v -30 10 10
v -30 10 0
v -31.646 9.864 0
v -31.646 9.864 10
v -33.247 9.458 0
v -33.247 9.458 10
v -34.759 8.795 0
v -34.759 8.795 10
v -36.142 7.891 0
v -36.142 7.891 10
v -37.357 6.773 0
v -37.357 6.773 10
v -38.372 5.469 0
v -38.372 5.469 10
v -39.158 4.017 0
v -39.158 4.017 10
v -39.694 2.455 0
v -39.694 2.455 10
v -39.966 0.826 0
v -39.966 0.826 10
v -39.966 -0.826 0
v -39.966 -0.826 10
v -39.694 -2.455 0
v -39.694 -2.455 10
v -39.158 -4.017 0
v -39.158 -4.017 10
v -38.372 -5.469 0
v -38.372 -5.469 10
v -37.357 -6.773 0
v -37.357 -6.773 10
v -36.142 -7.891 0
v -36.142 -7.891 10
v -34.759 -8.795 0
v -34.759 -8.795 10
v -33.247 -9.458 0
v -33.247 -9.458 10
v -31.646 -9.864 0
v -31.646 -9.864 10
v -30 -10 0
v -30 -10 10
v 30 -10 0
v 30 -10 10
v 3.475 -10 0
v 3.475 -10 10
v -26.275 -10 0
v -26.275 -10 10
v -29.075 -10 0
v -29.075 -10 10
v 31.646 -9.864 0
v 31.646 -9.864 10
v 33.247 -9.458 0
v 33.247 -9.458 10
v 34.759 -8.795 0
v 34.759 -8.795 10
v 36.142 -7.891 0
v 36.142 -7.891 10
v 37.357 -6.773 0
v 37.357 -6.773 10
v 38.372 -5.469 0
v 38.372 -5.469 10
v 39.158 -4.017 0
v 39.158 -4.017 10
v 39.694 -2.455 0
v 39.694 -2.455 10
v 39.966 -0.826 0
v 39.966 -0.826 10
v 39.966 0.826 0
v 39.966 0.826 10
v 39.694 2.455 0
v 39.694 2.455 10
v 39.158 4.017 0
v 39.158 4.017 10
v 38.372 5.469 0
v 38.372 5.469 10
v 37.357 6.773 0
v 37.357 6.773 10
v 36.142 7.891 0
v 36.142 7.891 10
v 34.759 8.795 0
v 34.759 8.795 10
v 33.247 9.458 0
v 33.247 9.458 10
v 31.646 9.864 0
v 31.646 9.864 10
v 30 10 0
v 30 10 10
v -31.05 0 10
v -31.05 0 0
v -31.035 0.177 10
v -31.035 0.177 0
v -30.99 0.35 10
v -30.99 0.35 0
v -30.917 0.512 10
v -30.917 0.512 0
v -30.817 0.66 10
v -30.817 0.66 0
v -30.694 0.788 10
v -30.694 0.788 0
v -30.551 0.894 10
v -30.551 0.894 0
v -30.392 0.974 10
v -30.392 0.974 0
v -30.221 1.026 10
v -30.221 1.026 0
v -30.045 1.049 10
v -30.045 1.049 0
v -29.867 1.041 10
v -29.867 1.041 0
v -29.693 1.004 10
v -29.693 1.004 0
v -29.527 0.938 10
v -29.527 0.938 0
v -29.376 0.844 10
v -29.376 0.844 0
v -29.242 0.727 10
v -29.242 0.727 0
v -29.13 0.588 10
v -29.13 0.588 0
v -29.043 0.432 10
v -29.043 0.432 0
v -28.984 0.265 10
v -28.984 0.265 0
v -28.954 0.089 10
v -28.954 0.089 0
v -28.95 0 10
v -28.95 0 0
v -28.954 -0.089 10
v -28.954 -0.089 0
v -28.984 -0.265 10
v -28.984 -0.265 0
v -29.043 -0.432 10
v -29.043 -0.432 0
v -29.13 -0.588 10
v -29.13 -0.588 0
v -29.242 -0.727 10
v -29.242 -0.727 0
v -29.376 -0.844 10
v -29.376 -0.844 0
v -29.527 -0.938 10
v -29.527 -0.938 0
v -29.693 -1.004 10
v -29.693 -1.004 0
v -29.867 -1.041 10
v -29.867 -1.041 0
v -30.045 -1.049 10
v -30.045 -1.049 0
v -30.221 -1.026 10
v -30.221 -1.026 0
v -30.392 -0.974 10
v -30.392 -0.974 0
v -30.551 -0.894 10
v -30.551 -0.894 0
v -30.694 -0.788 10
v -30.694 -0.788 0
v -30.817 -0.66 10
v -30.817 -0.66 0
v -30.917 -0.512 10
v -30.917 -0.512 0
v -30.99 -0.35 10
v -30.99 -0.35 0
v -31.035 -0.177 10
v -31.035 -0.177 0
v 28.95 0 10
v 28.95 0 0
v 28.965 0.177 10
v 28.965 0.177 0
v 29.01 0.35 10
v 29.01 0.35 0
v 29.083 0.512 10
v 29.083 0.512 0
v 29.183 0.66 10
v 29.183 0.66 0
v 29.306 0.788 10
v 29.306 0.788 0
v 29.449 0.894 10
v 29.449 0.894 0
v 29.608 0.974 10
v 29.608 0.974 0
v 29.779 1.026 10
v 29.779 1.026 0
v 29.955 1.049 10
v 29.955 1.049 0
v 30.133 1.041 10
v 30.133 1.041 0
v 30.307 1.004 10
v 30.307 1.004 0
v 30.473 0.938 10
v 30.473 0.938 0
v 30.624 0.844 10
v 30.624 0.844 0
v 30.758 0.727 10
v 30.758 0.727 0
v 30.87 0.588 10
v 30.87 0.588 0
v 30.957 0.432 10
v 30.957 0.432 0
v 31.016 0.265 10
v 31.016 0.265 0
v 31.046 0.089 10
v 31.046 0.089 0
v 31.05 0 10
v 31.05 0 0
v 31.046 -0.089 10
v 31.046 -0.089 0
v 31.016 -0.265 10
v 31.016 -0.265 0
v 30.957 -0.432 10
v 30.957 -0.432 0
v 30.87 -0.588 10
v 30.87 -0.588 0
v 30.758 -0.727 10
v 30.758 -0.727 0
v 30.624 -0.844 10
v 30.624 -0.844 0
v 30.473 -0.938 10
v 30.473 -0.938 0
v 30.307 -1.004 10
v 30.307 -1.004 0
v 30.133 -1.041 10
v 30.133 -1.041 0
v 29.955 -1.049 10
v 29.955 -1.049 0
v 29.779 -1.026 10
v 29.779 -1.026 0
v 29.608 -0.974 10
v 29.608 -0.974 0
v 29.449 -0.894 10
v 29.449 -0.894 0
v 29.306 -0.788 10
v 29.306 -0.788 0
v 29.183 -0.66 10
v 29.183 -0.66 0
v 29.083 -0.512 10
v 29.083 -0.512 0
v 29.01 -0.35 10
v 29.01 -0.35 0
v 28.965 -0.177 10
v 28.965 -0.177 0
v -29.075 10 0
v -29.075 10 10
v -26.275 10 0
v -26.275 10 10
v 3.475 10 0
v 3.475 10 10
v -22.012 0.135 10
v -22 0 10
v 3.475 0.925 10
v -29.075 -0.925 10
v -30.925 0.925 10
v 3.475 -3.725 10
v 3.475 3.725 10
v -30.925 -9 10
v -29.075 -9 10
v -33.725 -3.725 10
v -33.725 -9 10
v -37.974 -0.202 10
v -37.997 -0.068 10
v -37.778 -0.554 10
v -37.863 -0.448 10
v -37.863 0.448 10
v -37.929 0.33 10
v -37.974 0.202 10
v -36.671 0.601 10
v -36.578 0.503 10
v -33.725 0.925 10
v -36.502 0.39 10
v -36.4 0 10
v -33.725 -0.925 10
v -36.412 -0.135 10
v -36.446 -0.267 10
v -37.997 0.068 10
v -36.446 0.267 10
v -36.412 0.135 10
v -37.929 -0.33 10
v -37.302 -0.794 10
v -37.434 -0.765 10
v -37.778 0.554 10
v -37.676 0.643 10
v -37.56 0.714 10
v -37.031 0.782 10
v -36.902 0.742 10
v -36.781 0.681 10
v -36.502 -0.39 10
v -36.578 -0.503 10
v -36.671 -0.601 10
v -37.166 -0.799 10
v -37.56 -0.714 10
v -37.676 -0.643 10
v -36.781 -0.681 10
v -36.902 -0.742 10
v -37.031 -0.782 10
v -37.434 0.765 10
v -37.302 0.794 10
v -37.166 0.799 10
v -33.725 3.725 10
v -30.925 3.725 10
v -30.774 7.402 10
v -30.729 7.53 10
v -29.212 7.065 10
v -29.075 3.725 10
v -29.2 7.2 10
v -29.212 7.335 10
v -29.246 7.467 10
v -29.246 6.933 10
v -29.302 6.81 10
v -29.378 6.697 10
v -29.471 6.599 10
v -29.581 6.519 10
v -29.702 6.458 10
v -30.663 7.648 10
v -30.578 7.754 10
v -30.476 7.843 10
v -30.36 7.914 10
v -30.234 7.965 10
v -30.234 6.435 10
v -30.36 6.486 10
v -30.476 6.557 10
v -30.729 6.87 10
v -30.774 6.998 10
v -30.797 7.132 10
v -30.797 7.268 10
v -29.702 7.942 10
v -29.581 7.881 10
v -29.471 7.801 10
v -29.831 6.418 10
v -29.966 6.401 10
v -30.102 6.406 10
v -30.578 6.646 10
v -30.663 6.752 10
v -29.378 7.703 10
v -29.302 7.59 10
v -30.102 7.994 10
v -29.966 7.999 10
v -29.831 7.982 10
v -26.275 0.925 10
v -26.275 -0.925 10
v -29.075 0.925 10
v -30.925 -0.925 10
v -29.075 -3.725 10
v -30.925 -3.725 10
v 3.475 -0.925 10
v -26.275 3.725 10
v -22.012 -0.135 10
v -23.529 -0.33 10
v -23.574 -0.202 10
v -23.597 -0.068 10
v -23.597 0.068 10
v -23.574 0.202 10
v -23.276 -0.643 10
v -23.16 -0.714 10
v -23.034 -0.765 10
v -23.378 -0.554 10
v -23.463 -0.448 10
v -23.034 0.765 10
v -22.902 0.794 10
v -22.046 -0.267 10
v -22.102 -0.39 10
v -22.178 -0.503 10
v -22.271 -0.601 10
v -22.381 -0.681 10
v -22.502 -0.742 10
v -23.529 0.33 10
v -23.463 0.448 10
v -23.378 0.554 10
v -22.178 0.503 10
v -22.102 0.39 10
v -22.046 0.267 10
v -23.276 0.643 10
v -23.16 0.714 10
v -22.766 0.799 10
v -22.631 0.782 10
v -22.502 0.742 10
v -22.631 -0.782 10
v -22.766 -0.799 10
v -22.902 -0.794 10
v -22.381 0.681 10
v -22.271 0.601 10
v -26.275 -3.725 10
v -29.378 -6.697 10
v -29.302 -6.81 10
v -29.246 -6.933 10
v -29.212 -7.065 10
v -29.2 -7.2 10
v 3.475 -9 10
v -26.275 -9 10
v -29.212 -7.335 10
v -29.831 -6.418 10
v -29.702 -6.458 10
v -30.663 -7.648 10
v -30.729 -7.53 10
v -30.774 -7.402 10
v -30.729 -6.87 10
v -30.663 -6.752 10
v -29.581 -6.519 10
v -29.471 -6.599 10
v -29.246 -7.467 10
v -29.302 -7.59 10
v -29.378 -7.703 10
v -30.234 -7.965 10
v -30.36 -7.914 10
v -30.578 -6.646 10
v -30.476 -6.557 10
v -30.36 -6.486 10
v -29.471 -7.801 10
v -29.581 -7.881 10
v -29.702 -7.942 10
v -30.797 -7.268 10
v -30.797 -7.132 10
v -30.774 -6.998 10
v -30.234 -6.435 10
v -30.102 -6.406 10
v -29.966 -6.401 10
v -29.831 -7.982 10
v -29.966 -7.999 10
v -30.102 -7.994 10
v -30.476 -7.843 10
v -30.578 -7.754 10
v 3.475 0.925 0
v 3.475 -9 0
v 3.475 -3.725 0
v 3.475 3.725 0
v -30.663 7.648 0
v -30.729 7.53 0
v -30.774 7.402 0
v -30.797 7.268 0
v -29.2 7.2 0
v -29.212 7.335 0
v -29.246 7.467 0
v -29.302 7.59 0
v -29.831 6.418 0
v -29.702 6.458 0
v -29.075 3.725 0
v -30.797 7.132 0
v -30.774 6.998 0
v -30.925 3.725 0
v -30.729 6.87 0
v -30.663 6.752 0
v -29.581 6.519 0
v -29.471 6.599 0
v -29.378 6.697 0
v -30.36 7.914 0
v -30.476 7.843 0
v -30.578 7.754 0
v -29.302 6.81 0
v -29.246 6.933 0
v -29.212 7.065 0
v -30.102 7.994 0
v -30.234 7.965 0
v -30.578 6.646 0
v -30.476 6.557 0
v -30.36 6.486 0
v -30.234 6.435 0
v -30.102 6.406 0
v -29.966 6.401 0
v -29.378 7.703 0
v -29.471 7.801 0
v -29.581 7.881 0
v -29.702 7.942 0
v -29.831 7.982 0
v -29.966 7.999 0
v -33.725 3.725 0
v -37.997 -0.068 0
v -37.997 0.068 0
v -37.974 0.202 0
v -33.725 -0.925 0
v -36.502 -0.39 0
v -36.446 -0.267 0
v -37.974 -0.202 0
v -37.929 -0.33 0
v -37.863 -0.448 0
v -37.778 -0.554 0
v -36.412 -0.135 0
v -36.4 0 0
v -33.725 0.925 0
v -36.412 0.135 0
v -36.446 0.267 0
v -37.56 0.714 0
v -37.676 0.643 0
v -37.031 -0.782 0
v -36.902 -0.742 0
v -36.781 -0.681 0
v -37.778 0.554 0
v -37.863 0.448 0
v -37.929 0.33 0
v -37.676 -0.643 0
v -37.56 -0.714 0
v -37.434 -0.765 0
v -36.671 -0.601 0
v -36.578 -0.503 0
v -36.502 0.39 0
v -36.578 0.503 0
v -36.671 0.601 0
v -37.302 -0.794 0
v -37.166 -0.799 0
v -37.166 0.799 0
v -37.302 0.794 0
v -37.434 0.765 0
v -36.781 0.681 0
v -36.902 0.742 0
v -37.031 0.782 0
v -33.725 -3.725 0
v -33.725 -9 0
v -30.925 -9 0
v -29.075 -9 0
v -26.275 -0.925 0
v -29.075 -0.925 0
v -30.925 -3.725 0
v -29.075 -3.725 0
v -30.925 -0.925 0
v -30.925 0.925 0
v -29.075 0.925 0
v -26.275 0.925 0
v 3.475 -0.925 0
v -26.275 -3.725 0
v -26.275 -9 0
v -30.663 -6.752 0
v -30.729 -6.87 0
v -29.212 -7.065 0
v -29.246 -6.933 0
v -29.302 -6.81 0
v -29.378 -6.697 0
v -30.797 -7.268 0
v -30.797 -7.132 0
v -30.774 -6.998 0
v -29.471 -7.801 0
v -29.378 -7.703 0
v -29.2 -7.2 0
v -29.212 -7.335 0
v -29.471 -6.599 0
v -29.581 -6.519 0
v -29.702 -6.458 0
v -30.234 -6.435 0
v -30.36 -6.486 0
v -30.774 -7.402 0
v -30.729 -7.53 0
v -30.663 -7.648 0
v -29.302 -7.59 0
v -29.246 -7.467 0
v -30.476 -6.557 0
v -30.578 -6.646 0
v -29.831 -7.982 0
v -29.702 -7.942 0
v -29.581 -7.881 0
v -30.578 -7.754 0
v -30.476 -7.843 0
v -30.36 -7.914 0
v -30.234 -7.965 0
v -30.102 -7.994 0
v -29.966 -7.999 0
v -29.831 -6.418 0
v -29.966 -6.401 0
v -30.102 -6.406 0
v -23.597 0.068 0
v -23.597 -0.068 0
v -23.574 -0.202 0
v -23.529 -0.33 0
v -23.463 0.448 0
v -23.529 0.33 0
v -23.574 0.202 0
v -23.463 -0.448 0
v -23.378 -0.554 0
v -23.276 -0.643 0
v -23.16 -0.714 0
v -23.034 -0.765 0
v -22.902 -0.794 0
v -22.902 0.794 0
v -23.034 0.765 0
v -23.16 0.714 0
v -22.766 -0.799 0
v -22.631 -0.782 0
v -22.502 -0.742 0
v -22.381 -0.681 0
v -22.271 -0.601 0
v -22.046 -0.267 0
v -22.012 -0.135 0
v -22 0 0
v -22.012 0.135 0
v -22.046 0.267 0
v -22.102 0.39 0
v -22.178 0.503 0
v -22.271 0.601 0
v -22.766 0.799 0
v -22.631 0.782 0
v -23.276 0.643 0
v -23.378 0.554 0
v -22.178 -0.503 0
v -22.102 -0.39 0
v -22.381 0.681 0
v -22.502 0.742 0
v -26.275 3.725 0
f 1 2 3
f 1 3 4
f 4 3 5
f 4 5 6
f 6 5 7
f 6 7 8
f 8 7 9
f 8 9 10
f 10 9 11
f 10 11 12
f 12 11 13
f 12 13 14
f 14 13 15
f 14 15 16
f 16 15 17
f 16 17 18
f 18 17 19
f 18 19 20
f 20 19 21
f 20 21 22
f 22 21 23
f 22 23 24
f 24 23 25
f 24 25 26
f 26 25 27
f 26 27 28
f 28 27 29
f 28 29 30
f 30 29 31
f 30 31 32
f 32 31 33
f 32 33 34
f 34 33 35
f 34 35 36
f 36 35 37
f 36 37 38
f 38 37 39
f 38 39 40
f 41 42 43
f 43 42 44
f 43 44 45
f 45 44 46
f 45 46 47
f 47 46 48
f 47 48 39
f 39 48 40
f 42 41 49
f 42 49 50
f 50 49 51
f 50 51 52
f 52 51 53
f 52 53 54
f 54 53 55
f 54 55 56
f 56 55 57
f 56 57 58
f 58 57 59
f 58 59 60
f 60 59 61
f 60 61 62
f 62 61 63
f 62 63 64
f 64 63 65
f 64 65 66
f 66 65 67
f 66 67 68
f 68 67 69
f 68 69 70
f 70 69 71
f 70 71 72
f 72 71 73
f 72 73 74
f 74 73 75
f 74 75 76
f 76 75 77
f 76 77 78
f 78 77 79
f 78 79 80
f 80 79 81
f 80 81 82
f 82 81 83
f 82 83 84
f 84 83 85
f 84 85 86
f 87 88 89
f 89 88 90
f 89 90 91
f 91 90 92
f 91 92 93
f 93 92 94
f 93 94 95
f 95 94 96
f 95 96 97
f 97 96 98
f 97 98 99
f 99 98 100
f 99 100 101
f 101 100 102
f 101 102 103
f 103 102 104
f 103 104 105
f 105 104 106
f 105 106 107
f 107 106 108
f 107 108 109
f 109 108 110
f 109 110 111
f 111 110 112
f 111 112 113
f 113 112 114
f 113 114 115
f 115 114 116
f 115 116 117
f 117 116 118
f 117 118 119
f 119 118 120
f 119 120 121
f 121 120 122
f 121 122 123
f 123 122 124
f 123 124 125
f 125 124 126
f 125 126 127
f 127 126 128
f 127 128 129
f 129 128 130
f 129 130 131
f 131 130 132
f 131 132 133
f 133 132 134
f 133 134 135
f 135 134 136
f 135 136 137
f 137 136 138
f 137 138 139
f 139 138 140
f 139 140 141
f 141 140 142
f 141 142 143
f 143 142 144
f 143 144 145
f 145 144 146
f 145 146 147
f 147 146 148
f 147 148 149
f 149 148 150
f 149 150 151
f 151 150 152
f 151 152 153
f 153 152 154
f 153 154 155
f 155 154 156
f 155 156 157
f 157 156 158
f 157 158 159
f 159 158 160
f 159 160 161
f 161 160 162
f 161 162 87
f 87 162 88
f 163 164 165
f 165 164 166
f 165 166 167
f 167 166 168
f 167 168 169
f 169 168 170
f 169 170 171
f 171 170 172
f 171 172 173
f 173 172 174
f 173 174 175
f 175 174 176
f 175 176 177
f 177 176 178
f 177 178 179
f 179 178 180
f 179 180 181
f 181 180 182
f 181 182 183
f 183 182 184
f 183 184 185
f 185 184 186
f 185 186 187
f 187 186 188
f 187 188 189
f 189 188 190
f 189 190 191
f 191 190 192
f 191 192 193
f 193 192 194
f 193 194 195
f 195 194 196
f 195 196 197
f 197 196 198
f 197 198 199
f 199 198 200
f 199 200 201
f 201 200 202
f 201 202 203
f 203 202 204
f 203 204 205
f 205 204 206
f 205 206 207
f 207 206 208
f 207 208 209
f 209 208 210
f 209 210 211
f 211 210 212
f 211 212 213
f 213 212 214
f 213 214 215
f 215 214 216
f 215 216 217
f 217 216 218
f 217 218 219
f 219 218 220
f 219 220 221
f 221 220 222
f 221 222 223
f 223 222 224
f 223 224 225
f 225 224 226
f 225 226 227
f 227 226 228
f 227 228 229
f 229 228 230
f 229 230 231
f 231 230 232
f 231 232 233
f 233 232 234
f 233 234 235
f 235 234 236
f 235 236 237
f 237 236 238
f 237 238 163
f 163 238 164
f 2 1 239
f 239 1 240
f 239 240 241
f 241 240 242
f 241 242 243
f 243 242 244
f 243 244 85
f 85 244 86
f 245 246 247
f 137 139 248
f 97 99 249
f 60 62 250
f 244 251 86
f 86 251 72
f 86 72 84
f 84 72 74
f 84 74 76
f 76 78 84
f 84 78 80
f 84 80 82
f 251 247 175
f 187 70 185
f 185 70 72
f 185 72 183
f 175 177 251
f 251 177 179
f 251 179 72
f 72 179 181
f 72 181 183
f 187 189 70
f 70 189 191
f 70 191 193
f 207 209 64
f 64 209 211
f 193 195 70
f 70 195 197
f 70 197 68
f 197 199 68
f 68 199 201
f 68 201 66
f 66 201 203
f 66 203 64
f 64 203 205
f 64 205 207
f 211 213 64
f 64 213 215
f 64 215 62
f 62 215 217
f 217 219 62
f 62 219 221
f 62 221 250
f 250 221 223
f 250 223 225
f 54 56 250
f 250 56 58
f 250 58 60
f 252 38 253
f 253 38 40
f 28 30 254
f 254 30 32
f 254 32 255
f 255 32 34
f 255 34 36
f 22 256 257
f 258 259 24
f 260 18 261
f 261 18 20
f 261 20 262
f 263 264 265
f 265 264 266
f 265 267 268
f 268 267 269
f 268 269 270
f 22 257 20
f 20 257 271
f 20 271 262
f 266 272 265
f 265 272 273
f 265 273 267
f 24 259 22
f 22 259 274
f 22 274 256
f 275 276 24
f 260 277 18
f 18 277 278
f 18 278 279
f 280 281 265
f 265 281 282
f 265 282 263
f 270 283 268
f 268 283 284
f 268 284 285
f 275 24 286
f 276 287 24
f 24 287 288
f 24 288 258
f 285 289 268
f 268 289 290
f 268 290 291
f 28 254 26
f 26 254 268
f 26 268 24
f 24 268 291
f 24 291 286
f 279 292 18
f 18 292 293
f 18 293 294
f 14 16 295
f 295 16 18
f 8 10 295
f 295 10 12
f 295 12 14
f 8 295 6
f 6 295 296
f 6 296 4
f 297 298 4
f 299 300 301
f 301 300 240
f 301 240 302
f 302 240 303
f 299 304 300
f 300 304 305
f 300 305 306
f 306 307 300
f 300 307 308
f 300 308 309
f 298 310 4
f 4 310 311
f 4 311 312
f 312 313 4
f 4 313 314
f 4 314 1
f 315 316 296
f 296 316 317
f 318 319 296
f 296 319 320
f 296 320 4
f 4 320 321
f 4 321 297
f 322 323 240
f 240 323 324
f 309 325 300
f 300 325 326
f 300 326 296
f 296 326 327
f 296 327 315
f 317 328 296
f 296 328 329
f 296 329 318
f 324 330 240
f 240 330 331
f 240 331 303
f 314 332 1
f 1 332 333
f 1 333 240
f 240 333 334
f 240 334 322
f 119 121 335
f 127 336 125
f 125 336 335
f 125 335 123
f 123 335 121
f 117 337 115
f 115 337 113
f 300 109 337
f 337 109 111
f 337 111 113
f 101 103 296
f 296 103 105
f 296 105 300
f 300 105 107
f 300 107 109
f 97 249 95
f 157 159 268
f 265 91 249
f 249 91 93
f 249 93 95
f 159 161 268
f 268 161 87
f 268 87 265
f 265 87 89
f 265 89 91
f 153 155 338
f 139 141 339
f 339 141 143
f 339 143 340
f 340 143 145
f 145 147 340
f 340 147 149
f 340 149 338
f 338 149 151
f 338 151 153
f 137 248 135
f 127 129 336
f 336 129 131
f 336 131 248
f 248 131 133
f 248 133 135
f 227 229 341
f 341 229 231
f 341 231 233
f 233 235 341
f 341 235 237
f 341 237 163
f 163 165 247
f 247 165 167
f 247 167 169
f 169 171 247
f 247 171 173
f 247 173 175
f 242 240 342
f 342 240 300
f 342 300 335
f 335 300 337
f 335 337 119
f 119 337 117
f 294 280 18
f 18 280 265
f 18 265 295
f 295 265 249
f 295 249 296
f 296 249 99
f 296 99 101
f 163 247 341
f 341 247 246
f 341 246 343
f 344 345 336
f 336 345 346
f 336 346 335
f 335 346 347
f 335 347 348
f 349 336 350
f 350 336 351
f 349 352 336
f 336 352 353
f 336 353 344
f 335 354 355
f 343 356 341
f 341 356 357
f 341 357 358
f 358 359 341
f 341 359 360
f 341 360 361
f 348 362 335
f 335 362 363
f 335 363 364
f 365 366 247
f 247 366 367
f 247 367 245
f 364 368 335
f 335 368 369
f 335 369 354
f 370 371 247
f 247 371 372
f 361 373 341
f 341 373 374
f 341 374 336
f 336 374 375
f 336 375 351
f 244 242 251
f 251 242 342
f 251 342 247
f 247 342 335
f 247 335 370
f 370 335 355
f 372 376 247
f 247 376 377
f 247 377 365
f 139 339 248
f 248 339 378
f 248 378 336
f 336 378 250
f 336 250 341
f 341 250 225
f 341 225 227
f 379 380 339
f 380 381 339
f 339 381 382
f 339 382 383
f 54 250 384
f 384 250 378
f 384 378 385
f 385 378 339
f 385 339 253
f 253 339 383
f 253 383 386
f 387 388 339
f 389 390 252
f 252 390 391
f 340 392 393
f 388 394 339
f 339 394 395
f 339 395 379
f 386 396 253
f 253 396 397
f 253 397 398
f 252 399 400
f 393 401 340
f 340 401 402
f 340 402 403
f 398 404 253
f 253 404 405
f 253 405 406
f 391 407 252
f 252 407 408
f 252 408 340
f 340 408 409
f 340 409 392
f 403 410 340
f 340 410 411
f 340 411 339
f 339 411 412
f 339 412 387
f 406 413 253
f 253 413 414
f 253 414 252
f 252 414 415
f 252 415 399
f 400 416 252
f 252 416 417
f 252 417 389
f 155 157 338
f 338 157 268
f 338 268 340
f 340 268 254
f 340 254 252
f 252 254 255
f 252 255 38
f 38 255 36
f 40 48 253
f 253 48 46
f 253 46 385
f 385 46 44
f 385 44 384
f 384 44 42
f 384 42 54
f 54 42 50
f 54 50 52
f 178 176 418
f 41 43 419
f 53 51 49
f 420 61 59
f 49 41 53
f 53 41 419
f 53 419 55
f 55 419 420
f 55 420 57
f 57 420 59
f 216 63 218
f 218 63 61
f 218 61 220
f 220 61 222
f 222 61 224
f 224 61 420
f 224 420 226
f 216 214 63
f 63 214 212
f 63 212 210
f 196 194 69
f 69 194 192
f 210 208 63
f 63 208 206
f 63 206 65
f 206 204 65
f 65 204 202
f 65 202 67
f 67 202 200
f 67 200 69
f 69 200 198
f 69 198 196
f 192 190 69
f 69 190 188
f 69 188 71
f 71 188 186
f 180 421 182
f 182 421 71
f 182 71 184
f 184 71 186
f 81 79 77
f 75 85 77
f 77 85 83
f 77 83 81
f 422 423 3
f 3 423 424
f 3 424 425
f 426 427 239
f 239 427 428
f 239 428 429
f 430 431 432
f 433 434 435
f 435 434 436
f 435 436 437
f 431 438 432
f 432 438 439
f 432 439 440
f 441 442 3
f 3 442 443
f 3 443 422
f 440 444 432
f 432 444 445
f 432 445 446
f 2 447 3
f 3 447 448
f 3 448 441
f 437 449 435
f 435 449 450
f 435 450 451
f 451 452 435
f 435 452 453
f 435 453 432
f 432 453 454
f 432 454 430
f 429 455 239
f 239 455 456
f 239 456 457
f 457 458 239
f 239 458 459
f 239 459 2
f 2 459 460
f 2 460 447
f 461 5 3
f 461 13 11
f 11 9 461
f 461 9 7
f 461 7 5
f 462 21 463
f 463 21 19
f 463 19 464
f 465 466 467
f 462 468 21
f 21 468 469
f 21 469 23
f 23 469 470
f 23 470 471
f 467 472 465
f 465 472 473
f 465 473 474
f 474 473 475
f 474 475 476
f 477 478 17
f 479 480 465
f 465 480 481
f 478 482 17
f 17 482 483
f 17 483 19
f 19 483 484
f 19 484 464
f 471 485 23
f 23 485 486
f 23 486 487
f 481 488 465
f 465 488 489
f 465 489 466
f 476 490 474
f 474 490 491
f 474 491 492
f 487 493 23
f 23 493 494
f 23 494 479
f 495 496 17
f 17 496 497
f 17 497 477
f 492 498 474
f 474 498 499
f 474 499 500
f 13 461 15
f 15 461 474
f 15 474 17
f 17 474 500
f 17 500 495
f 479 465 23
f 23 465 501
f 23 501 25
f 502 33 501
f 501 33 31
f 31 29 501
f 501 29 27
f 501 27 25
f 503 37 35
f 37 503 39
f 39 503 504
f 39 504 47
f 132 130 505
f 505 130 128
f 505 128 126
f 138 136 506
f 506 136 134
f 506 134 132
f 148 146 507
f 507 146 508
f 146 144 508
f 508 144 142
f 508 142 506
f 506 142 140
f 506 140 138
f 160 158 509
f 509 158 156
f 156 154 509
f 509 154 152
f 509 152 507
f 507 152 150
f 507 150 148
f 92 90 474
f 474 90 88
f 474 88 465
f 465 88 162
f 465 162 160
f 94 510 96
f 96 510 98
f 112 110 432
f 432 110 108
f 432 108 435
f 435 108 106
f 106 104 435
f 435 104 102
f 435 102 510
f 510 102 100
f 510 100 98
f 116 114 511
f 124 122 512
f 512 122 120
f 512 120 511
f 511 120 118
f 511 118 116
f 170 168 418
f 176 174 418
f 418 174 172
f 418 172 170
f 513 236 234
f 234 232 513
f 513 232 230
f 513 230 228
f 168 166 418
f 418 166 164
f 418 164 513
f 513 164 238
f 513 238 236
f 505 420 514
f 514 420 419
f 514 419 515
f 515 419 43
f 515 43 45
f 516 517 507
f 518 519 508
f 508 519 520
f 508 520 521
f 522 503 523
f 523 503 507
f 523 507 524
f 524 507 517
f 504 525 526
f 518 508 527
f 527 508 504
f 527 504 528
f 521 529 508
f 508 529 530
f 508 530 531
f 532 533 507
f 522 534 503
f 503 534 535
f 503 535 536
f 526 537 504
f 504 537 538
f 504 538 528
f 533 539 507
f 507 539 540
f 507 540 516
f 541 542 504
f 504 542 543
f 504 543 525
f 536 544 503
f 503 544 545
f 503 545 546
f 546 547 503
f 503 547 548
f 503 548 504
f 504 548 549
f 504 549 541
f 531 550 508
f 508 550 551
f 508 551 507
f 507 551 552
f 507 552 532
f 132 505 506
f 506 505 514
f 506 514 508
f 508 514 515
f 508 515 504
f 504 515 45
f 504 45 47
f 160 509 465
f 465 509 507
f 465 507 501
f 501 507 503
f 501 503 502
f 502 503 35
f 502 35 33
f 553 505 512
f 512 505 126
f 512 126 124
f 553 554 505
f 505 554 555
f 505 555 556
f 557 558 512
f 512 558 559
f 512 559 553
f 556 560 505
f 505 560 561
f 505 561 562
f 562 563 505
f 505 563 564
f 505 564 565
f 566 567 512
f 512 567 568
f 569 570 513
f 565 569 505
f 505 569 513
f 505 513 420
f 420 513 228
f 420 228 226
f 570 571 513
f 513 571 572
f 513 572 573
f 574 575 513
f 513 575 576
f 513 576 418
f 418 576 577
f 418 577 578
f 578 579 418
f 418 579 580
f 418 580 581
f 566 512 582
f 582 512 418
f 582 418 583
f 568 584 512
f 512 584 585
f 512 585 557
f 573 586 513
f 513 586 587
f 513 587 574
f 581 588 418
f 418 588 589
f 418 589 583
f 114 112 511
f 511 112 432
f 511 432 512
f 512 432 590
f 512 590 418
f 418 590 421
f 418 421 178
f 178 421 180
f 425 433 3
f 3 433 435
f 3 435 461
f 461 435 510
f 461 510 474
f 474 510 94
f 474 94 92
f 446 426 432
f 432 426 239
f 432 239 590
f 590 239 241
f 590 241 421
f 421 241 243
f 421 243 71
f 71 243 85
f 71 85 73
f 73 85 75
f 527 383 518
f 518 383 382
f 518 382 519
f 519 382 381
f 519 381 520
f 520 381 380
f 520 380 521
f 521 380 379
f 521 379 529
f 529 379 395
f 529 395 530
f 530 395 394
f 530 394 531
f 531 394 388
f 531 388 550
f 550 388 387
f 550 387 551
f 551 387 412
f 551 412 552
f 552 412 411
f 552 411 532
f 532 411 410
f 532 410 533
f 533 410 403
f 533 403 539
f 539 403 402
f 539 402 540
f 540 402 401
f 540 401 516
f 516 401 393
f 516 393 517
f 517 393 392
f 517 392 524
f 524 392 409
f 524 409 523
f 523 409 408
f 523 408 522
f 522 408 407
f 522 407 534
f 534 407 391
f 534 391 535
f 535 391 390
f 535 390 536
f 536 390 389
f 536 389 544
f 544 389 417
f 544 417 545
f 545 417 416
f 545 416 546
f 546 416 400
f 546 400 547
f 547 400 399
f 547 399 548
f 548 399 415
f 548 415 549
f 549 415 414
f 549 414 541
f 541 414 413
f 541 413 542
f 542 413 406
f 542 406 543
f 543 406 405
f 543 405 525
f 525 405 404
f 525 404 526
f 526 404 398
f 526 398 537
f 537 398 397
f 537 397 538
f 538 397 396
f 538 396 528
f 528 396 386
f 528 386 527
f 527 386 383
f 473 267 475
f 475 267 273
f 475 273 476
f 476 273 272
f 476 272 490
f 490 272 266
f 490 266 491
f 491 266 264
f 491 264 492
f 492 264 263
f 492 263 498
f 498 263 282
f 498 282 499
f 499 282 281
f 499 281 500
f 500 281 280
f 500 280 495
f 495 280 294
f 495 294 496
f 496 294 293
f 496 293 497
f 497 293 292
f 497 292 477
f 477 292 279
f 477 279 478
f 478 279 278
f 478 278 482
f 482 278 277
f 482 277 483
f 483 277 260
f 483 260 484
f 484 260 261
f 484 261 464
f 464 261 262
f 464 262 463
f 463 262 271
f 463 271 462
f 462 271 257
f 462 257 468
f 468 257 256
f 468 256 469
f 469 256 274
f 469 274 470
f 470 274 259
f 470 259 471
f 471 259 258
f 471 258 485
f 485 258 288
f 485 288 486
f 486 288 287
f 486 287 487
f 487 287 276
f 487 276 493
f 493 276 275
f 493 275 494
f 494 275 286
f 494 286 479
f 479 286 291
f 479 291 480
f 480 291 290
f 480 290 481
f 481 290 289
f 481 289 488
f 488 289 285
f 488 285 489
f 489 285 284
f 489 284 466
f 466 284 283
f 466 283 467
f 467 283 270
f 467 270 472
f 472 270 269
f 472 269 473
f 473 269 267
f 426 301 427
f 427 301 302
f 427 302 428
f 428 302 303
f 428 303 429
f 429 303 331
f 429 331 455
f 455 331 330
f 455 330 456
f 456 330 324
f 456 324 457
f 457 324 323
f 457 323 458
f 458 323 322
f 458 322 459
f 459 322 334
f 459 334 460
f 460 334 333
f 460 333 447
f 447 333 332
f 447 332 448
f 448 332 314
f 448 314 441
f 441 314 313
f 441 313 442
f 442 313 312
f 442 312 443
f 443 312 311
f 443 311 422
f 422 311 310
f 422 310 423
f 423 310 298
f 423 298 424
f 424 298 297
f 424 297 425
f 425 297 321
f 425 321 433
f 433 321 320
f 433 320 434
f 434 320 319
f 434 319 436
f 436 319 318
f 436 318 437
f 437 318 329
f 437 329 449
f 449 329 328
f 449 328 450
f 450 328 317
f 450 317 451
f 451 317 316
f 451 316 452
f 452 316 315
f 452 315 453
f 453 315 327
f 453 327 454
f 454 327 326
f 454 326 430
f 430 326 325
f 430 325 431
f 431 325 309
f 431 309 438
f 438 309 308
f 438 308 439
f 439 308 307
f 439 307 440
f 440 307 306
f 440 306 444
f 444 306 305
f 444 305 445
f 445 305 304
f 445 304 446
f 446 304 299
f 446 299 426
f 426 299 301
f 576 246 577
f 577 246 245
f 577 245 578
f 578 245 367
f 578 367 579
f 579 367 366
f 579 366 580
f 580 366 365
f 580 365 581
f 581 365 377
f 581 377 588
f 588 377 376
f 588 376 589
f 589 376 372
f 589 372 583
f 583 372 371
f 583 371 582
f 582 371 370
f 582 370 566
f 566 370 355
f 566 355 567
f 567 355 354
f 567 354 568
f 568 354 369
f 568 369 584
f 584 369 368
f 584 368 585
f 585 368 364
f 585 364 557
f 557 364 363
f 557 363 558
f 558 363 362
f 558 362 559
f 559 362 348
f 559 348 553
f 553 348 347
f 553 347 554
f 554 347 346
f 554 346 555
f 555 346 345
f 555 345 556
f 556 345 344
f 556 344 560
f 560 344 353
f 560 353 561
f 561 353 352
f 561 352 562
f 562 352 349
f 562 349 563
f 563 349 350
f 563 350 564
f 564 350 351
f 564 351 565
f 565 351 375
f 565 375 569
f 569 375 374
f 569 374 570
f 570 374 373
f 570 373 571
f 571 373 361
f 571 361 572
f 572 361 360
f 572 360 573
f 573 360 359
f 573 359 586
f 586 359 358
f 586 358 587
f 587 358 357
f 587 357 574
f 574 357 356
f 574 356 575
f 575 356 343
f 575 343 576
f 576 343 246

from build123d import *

# Parameters (mm, degrees)
EXTRUDE_1_DEPTH = 10
M2X0_4_1_D      = 1.6
M2X0_4_2_D      = 1.6


with BuildPart() as part:
    # ｽｹｯﾁ2 → ﾎﾞｽ - 押し出し1 (new body)
    with BuildSketch(Plane.XY):
        with BuildLine():
            ThreePointArc((-20, 0), (-22.928932188, 7.071067812), (-30, 10))
            Line((-30, 10), (-30, 1.05))
            ThreePointArc((-30, 1.05), (-29.25753788, 0.74246212), (-28.95, 0))
            ThreePointArc((-28.95, 0), (-29.25753788, -0.74246212), (-30, -1.05))
            Line((-30, -1.05), (-30, -10))
            ThreePointArc((-30, -10), (-22.928932188, -7.071067812), (-20, 0))
        make_face()
        with BuildLine():
            Line((-30, 1.05), (-30, 10))
            ThreePointArc((-30, 10), (-40, 0), (-30, -10))
            Line((-30, -10), (-30, -1.05))
            ThreePointArc((-30, -1.05), (-31.05, 0), (-30, 1.05))
        make_face()
        with BuildLine():
            Line((30, 10), (-30, 10))
            ThreePointArc((-30, 10), (-22.928932188, 7.071067812), (-20, 0))
            ThreePointArc((-20, 0), (-22.928932188, -7.071067812), (-30, -10))
            Line((-30, -10), (30, -10))
            ThreePointArc((30, -10), (20, 0), (30, 10))
        make_face()
        with BuildLine():
            ThreePointArc((40, 0), (37.071067812, 7.071067812), (30, 10))
            Line((30, 10), (30, 1.05))
            ThreePointArc((30, 1.05), (30.74246212, 0.74246212), (31.05, 0))
            ThreePointArc((31.05, 0), (30.74246212, -0.74246212), (30, -1.05))
            Line((30, -1.05), (30, -10))
            ThreePointArc((30, -10), (37.071067812, -7.071067812), (40, 0))
        make_face()
        with BuildLine():
            Line((30, 1.05), (30, 10))
            ThreePointArc((30, 10), (20, 0), (30, -10))
            Line((30, -10), (30, -1.05))
            ThreePointArc((30, -1.05), (28.95, 0), (30, 1.05))
        make_face()
    extrude(amount=EXTRUDE_1_DEPTH)

    # M2x0.4 ねじ穴1 (through all)
    with Locations(Plane.XY.offset(10)):
        with Locations((-30, 7.2), (-37.2, 0), (-30, -7.2)):
            Hole(M2X0_4_1_D / 2)

    # M2x0.4 ねじ穴2 (through all)
    with Locations(Plane.XY.offset(10)):
        with Locations((-22.8, 0)):
            Hole(M2X0_4_2_D / 2)


solid = part.part
